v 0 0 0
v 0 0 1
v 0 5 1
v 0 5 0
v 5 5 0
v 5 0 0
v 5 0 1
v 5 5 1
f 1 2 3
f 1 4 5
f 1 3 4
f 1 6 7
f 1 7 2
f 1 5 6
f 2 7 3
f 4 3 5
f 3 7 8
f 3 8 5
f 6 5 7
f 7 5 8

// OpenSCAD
/* Warning, this is a very basic generator with a lot of approximation 
input data : [VQFN, 5KC, 5x5x1.0mm, 32, , A, C04-25449A]
generated by com.zoubworld.electronics.cad.model3d.Basic
Date : Sun Feb 15 10:50:49 CET 2026
*/

//body
color("black")
translate([0,0,0])
cube([5.0,5.0,1.0], center=false);
